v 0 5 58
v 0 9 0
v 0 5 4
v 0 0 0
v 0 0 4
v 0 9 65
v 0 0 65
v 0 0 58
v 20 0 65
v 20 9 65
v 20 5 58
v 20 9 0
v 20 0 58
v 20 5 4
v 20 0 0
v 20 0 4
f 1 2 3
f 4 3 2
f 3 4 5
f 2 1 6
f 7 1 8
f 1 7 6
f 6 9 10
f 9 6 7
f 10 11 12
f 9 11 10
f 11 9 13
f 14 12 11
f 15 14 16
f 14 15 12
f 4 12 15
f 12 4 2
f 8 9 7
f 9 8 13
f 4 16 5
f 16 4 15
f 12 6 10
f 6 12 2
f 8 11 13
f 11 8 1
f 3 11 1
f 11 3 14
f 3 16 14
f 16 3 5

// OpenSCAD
WallThickness = 4;
ExistingWallThickness = 7;
PartWidth = 51 + 3;
ReverseWidth = 5;
PartLength = 20;

difference() {
    cube([PartLength, ReverseWidth+WallThickness, WallThickness+ExistingWallThickness+PartWidth], center=false);
    translate([0, 0, WallThickness])
    cube([PartLength, ReverseWidth, PartWidth], center=false);
}


/*
ShelfLength = 180;
ShelfWidth = 110;
ShelfHeight = 8;
WallThickness = 2;

ColumnSize = 5;
ColumnHeight = 80;
ColumnOffset = 20;
ColumnHoleRadius = 0;

// Main surface
cube([ShelfWidth, ShelfLength, WallThickness], center=false);

// Backwall reenforcement
translate([0, 0, ShelfHeight/2]) {
    rotate([0, 90, 0]) {
        cube([ShelfHeight, ShelfLength, WallThickness], center=false);
    }
}


// Triangle reenforcement
translate([5, 0, -(ColumnHeight-ColumnOffset) + 3]) {
    rotate([0, -atan((ColumnHeight-ColumnOffset)/ShelfWidth),0]) {
        cube([sqrt(ShelfWidth*ShelfWidth + (ColumnHeight-ColumnOffset)*(ColumnHeight-ColumnOffset)) - 15, ColumnSize, ColumnSize], center=false);
    }
}

// Triangle reenforcement
translate([5, ShelfLength-ColumnSize, -(ColumnHeight-ColumnOffset) + 3]) {
    rotate([0, -atan((ColumnHeight-ColumnOffset)/ShelfWidth),0]) {
        cube([sqrt(ShelfWidth*ShelfWidth + (ColumnHeight-ColumnOffset)*(ColumnHeight-ColumnOffset)) - 15, ColumnSize, ColumnSize], center=false);
    }
}

// Surface reenforcement
translate([0, 0, -ColumnSize]) {
    cube([ShelfWidth, ColumnSize, ColumnSize], center=false);
}

// Surface reenforcement
translate([0, ShelfLength-ColumnSize, -ColumnSize]) {
    cube([ShelfWidth, ColumnSize, ColumnSize], center=false);
}

// Backwall vertical reenforcement
difference () {
    translate([0, 0, -ColumnHeight/2 - ColumnOffset]) {
        cube([ColumnSize, ColumnSize, ColumnHeight], center=false);
    }
    
    translate([0, ColumnSize/2, ColumnOffset - ColumnSize]) {
        rotate([0, 90, 0]) {
            cylinder(h = ColumnSize, r = ColumnHoleRadius, center = false);
        }
    }
}

difference () {
    translate([0, ShelfLength - ColumnSize, -ColumnHeight/2 - ColumnOffset]) {
        cube([ColumnSize, ColumnSize, ColumnHeight], center=false);
    }

    translate([0, ShelfLength - ColumnSize/2, ColumnOffset - ColumnSize]) {
        rotate([0, 90, 0]) {
            cylinder(h = ColumnSize, r = ColumnHoleRadius, center = false);
        }
    }
}
*/

/*
translate([PSUWidth-0.2, 8, 18]) {
    rotate([90, 0, 90]) {
        linear_extrude(height = 1/2){
            text("110-220V Input", size=3, font="Arial Black");
        }
    }
}

translate([PSUWidth-0.2, 5, 8]) {
    rotate([90, 0, 90]) {
        linear_extrude(height = 1/2){
            text("4V 1.25A Output", size=3, font="Arial Black");
        }
    }
}
*/
